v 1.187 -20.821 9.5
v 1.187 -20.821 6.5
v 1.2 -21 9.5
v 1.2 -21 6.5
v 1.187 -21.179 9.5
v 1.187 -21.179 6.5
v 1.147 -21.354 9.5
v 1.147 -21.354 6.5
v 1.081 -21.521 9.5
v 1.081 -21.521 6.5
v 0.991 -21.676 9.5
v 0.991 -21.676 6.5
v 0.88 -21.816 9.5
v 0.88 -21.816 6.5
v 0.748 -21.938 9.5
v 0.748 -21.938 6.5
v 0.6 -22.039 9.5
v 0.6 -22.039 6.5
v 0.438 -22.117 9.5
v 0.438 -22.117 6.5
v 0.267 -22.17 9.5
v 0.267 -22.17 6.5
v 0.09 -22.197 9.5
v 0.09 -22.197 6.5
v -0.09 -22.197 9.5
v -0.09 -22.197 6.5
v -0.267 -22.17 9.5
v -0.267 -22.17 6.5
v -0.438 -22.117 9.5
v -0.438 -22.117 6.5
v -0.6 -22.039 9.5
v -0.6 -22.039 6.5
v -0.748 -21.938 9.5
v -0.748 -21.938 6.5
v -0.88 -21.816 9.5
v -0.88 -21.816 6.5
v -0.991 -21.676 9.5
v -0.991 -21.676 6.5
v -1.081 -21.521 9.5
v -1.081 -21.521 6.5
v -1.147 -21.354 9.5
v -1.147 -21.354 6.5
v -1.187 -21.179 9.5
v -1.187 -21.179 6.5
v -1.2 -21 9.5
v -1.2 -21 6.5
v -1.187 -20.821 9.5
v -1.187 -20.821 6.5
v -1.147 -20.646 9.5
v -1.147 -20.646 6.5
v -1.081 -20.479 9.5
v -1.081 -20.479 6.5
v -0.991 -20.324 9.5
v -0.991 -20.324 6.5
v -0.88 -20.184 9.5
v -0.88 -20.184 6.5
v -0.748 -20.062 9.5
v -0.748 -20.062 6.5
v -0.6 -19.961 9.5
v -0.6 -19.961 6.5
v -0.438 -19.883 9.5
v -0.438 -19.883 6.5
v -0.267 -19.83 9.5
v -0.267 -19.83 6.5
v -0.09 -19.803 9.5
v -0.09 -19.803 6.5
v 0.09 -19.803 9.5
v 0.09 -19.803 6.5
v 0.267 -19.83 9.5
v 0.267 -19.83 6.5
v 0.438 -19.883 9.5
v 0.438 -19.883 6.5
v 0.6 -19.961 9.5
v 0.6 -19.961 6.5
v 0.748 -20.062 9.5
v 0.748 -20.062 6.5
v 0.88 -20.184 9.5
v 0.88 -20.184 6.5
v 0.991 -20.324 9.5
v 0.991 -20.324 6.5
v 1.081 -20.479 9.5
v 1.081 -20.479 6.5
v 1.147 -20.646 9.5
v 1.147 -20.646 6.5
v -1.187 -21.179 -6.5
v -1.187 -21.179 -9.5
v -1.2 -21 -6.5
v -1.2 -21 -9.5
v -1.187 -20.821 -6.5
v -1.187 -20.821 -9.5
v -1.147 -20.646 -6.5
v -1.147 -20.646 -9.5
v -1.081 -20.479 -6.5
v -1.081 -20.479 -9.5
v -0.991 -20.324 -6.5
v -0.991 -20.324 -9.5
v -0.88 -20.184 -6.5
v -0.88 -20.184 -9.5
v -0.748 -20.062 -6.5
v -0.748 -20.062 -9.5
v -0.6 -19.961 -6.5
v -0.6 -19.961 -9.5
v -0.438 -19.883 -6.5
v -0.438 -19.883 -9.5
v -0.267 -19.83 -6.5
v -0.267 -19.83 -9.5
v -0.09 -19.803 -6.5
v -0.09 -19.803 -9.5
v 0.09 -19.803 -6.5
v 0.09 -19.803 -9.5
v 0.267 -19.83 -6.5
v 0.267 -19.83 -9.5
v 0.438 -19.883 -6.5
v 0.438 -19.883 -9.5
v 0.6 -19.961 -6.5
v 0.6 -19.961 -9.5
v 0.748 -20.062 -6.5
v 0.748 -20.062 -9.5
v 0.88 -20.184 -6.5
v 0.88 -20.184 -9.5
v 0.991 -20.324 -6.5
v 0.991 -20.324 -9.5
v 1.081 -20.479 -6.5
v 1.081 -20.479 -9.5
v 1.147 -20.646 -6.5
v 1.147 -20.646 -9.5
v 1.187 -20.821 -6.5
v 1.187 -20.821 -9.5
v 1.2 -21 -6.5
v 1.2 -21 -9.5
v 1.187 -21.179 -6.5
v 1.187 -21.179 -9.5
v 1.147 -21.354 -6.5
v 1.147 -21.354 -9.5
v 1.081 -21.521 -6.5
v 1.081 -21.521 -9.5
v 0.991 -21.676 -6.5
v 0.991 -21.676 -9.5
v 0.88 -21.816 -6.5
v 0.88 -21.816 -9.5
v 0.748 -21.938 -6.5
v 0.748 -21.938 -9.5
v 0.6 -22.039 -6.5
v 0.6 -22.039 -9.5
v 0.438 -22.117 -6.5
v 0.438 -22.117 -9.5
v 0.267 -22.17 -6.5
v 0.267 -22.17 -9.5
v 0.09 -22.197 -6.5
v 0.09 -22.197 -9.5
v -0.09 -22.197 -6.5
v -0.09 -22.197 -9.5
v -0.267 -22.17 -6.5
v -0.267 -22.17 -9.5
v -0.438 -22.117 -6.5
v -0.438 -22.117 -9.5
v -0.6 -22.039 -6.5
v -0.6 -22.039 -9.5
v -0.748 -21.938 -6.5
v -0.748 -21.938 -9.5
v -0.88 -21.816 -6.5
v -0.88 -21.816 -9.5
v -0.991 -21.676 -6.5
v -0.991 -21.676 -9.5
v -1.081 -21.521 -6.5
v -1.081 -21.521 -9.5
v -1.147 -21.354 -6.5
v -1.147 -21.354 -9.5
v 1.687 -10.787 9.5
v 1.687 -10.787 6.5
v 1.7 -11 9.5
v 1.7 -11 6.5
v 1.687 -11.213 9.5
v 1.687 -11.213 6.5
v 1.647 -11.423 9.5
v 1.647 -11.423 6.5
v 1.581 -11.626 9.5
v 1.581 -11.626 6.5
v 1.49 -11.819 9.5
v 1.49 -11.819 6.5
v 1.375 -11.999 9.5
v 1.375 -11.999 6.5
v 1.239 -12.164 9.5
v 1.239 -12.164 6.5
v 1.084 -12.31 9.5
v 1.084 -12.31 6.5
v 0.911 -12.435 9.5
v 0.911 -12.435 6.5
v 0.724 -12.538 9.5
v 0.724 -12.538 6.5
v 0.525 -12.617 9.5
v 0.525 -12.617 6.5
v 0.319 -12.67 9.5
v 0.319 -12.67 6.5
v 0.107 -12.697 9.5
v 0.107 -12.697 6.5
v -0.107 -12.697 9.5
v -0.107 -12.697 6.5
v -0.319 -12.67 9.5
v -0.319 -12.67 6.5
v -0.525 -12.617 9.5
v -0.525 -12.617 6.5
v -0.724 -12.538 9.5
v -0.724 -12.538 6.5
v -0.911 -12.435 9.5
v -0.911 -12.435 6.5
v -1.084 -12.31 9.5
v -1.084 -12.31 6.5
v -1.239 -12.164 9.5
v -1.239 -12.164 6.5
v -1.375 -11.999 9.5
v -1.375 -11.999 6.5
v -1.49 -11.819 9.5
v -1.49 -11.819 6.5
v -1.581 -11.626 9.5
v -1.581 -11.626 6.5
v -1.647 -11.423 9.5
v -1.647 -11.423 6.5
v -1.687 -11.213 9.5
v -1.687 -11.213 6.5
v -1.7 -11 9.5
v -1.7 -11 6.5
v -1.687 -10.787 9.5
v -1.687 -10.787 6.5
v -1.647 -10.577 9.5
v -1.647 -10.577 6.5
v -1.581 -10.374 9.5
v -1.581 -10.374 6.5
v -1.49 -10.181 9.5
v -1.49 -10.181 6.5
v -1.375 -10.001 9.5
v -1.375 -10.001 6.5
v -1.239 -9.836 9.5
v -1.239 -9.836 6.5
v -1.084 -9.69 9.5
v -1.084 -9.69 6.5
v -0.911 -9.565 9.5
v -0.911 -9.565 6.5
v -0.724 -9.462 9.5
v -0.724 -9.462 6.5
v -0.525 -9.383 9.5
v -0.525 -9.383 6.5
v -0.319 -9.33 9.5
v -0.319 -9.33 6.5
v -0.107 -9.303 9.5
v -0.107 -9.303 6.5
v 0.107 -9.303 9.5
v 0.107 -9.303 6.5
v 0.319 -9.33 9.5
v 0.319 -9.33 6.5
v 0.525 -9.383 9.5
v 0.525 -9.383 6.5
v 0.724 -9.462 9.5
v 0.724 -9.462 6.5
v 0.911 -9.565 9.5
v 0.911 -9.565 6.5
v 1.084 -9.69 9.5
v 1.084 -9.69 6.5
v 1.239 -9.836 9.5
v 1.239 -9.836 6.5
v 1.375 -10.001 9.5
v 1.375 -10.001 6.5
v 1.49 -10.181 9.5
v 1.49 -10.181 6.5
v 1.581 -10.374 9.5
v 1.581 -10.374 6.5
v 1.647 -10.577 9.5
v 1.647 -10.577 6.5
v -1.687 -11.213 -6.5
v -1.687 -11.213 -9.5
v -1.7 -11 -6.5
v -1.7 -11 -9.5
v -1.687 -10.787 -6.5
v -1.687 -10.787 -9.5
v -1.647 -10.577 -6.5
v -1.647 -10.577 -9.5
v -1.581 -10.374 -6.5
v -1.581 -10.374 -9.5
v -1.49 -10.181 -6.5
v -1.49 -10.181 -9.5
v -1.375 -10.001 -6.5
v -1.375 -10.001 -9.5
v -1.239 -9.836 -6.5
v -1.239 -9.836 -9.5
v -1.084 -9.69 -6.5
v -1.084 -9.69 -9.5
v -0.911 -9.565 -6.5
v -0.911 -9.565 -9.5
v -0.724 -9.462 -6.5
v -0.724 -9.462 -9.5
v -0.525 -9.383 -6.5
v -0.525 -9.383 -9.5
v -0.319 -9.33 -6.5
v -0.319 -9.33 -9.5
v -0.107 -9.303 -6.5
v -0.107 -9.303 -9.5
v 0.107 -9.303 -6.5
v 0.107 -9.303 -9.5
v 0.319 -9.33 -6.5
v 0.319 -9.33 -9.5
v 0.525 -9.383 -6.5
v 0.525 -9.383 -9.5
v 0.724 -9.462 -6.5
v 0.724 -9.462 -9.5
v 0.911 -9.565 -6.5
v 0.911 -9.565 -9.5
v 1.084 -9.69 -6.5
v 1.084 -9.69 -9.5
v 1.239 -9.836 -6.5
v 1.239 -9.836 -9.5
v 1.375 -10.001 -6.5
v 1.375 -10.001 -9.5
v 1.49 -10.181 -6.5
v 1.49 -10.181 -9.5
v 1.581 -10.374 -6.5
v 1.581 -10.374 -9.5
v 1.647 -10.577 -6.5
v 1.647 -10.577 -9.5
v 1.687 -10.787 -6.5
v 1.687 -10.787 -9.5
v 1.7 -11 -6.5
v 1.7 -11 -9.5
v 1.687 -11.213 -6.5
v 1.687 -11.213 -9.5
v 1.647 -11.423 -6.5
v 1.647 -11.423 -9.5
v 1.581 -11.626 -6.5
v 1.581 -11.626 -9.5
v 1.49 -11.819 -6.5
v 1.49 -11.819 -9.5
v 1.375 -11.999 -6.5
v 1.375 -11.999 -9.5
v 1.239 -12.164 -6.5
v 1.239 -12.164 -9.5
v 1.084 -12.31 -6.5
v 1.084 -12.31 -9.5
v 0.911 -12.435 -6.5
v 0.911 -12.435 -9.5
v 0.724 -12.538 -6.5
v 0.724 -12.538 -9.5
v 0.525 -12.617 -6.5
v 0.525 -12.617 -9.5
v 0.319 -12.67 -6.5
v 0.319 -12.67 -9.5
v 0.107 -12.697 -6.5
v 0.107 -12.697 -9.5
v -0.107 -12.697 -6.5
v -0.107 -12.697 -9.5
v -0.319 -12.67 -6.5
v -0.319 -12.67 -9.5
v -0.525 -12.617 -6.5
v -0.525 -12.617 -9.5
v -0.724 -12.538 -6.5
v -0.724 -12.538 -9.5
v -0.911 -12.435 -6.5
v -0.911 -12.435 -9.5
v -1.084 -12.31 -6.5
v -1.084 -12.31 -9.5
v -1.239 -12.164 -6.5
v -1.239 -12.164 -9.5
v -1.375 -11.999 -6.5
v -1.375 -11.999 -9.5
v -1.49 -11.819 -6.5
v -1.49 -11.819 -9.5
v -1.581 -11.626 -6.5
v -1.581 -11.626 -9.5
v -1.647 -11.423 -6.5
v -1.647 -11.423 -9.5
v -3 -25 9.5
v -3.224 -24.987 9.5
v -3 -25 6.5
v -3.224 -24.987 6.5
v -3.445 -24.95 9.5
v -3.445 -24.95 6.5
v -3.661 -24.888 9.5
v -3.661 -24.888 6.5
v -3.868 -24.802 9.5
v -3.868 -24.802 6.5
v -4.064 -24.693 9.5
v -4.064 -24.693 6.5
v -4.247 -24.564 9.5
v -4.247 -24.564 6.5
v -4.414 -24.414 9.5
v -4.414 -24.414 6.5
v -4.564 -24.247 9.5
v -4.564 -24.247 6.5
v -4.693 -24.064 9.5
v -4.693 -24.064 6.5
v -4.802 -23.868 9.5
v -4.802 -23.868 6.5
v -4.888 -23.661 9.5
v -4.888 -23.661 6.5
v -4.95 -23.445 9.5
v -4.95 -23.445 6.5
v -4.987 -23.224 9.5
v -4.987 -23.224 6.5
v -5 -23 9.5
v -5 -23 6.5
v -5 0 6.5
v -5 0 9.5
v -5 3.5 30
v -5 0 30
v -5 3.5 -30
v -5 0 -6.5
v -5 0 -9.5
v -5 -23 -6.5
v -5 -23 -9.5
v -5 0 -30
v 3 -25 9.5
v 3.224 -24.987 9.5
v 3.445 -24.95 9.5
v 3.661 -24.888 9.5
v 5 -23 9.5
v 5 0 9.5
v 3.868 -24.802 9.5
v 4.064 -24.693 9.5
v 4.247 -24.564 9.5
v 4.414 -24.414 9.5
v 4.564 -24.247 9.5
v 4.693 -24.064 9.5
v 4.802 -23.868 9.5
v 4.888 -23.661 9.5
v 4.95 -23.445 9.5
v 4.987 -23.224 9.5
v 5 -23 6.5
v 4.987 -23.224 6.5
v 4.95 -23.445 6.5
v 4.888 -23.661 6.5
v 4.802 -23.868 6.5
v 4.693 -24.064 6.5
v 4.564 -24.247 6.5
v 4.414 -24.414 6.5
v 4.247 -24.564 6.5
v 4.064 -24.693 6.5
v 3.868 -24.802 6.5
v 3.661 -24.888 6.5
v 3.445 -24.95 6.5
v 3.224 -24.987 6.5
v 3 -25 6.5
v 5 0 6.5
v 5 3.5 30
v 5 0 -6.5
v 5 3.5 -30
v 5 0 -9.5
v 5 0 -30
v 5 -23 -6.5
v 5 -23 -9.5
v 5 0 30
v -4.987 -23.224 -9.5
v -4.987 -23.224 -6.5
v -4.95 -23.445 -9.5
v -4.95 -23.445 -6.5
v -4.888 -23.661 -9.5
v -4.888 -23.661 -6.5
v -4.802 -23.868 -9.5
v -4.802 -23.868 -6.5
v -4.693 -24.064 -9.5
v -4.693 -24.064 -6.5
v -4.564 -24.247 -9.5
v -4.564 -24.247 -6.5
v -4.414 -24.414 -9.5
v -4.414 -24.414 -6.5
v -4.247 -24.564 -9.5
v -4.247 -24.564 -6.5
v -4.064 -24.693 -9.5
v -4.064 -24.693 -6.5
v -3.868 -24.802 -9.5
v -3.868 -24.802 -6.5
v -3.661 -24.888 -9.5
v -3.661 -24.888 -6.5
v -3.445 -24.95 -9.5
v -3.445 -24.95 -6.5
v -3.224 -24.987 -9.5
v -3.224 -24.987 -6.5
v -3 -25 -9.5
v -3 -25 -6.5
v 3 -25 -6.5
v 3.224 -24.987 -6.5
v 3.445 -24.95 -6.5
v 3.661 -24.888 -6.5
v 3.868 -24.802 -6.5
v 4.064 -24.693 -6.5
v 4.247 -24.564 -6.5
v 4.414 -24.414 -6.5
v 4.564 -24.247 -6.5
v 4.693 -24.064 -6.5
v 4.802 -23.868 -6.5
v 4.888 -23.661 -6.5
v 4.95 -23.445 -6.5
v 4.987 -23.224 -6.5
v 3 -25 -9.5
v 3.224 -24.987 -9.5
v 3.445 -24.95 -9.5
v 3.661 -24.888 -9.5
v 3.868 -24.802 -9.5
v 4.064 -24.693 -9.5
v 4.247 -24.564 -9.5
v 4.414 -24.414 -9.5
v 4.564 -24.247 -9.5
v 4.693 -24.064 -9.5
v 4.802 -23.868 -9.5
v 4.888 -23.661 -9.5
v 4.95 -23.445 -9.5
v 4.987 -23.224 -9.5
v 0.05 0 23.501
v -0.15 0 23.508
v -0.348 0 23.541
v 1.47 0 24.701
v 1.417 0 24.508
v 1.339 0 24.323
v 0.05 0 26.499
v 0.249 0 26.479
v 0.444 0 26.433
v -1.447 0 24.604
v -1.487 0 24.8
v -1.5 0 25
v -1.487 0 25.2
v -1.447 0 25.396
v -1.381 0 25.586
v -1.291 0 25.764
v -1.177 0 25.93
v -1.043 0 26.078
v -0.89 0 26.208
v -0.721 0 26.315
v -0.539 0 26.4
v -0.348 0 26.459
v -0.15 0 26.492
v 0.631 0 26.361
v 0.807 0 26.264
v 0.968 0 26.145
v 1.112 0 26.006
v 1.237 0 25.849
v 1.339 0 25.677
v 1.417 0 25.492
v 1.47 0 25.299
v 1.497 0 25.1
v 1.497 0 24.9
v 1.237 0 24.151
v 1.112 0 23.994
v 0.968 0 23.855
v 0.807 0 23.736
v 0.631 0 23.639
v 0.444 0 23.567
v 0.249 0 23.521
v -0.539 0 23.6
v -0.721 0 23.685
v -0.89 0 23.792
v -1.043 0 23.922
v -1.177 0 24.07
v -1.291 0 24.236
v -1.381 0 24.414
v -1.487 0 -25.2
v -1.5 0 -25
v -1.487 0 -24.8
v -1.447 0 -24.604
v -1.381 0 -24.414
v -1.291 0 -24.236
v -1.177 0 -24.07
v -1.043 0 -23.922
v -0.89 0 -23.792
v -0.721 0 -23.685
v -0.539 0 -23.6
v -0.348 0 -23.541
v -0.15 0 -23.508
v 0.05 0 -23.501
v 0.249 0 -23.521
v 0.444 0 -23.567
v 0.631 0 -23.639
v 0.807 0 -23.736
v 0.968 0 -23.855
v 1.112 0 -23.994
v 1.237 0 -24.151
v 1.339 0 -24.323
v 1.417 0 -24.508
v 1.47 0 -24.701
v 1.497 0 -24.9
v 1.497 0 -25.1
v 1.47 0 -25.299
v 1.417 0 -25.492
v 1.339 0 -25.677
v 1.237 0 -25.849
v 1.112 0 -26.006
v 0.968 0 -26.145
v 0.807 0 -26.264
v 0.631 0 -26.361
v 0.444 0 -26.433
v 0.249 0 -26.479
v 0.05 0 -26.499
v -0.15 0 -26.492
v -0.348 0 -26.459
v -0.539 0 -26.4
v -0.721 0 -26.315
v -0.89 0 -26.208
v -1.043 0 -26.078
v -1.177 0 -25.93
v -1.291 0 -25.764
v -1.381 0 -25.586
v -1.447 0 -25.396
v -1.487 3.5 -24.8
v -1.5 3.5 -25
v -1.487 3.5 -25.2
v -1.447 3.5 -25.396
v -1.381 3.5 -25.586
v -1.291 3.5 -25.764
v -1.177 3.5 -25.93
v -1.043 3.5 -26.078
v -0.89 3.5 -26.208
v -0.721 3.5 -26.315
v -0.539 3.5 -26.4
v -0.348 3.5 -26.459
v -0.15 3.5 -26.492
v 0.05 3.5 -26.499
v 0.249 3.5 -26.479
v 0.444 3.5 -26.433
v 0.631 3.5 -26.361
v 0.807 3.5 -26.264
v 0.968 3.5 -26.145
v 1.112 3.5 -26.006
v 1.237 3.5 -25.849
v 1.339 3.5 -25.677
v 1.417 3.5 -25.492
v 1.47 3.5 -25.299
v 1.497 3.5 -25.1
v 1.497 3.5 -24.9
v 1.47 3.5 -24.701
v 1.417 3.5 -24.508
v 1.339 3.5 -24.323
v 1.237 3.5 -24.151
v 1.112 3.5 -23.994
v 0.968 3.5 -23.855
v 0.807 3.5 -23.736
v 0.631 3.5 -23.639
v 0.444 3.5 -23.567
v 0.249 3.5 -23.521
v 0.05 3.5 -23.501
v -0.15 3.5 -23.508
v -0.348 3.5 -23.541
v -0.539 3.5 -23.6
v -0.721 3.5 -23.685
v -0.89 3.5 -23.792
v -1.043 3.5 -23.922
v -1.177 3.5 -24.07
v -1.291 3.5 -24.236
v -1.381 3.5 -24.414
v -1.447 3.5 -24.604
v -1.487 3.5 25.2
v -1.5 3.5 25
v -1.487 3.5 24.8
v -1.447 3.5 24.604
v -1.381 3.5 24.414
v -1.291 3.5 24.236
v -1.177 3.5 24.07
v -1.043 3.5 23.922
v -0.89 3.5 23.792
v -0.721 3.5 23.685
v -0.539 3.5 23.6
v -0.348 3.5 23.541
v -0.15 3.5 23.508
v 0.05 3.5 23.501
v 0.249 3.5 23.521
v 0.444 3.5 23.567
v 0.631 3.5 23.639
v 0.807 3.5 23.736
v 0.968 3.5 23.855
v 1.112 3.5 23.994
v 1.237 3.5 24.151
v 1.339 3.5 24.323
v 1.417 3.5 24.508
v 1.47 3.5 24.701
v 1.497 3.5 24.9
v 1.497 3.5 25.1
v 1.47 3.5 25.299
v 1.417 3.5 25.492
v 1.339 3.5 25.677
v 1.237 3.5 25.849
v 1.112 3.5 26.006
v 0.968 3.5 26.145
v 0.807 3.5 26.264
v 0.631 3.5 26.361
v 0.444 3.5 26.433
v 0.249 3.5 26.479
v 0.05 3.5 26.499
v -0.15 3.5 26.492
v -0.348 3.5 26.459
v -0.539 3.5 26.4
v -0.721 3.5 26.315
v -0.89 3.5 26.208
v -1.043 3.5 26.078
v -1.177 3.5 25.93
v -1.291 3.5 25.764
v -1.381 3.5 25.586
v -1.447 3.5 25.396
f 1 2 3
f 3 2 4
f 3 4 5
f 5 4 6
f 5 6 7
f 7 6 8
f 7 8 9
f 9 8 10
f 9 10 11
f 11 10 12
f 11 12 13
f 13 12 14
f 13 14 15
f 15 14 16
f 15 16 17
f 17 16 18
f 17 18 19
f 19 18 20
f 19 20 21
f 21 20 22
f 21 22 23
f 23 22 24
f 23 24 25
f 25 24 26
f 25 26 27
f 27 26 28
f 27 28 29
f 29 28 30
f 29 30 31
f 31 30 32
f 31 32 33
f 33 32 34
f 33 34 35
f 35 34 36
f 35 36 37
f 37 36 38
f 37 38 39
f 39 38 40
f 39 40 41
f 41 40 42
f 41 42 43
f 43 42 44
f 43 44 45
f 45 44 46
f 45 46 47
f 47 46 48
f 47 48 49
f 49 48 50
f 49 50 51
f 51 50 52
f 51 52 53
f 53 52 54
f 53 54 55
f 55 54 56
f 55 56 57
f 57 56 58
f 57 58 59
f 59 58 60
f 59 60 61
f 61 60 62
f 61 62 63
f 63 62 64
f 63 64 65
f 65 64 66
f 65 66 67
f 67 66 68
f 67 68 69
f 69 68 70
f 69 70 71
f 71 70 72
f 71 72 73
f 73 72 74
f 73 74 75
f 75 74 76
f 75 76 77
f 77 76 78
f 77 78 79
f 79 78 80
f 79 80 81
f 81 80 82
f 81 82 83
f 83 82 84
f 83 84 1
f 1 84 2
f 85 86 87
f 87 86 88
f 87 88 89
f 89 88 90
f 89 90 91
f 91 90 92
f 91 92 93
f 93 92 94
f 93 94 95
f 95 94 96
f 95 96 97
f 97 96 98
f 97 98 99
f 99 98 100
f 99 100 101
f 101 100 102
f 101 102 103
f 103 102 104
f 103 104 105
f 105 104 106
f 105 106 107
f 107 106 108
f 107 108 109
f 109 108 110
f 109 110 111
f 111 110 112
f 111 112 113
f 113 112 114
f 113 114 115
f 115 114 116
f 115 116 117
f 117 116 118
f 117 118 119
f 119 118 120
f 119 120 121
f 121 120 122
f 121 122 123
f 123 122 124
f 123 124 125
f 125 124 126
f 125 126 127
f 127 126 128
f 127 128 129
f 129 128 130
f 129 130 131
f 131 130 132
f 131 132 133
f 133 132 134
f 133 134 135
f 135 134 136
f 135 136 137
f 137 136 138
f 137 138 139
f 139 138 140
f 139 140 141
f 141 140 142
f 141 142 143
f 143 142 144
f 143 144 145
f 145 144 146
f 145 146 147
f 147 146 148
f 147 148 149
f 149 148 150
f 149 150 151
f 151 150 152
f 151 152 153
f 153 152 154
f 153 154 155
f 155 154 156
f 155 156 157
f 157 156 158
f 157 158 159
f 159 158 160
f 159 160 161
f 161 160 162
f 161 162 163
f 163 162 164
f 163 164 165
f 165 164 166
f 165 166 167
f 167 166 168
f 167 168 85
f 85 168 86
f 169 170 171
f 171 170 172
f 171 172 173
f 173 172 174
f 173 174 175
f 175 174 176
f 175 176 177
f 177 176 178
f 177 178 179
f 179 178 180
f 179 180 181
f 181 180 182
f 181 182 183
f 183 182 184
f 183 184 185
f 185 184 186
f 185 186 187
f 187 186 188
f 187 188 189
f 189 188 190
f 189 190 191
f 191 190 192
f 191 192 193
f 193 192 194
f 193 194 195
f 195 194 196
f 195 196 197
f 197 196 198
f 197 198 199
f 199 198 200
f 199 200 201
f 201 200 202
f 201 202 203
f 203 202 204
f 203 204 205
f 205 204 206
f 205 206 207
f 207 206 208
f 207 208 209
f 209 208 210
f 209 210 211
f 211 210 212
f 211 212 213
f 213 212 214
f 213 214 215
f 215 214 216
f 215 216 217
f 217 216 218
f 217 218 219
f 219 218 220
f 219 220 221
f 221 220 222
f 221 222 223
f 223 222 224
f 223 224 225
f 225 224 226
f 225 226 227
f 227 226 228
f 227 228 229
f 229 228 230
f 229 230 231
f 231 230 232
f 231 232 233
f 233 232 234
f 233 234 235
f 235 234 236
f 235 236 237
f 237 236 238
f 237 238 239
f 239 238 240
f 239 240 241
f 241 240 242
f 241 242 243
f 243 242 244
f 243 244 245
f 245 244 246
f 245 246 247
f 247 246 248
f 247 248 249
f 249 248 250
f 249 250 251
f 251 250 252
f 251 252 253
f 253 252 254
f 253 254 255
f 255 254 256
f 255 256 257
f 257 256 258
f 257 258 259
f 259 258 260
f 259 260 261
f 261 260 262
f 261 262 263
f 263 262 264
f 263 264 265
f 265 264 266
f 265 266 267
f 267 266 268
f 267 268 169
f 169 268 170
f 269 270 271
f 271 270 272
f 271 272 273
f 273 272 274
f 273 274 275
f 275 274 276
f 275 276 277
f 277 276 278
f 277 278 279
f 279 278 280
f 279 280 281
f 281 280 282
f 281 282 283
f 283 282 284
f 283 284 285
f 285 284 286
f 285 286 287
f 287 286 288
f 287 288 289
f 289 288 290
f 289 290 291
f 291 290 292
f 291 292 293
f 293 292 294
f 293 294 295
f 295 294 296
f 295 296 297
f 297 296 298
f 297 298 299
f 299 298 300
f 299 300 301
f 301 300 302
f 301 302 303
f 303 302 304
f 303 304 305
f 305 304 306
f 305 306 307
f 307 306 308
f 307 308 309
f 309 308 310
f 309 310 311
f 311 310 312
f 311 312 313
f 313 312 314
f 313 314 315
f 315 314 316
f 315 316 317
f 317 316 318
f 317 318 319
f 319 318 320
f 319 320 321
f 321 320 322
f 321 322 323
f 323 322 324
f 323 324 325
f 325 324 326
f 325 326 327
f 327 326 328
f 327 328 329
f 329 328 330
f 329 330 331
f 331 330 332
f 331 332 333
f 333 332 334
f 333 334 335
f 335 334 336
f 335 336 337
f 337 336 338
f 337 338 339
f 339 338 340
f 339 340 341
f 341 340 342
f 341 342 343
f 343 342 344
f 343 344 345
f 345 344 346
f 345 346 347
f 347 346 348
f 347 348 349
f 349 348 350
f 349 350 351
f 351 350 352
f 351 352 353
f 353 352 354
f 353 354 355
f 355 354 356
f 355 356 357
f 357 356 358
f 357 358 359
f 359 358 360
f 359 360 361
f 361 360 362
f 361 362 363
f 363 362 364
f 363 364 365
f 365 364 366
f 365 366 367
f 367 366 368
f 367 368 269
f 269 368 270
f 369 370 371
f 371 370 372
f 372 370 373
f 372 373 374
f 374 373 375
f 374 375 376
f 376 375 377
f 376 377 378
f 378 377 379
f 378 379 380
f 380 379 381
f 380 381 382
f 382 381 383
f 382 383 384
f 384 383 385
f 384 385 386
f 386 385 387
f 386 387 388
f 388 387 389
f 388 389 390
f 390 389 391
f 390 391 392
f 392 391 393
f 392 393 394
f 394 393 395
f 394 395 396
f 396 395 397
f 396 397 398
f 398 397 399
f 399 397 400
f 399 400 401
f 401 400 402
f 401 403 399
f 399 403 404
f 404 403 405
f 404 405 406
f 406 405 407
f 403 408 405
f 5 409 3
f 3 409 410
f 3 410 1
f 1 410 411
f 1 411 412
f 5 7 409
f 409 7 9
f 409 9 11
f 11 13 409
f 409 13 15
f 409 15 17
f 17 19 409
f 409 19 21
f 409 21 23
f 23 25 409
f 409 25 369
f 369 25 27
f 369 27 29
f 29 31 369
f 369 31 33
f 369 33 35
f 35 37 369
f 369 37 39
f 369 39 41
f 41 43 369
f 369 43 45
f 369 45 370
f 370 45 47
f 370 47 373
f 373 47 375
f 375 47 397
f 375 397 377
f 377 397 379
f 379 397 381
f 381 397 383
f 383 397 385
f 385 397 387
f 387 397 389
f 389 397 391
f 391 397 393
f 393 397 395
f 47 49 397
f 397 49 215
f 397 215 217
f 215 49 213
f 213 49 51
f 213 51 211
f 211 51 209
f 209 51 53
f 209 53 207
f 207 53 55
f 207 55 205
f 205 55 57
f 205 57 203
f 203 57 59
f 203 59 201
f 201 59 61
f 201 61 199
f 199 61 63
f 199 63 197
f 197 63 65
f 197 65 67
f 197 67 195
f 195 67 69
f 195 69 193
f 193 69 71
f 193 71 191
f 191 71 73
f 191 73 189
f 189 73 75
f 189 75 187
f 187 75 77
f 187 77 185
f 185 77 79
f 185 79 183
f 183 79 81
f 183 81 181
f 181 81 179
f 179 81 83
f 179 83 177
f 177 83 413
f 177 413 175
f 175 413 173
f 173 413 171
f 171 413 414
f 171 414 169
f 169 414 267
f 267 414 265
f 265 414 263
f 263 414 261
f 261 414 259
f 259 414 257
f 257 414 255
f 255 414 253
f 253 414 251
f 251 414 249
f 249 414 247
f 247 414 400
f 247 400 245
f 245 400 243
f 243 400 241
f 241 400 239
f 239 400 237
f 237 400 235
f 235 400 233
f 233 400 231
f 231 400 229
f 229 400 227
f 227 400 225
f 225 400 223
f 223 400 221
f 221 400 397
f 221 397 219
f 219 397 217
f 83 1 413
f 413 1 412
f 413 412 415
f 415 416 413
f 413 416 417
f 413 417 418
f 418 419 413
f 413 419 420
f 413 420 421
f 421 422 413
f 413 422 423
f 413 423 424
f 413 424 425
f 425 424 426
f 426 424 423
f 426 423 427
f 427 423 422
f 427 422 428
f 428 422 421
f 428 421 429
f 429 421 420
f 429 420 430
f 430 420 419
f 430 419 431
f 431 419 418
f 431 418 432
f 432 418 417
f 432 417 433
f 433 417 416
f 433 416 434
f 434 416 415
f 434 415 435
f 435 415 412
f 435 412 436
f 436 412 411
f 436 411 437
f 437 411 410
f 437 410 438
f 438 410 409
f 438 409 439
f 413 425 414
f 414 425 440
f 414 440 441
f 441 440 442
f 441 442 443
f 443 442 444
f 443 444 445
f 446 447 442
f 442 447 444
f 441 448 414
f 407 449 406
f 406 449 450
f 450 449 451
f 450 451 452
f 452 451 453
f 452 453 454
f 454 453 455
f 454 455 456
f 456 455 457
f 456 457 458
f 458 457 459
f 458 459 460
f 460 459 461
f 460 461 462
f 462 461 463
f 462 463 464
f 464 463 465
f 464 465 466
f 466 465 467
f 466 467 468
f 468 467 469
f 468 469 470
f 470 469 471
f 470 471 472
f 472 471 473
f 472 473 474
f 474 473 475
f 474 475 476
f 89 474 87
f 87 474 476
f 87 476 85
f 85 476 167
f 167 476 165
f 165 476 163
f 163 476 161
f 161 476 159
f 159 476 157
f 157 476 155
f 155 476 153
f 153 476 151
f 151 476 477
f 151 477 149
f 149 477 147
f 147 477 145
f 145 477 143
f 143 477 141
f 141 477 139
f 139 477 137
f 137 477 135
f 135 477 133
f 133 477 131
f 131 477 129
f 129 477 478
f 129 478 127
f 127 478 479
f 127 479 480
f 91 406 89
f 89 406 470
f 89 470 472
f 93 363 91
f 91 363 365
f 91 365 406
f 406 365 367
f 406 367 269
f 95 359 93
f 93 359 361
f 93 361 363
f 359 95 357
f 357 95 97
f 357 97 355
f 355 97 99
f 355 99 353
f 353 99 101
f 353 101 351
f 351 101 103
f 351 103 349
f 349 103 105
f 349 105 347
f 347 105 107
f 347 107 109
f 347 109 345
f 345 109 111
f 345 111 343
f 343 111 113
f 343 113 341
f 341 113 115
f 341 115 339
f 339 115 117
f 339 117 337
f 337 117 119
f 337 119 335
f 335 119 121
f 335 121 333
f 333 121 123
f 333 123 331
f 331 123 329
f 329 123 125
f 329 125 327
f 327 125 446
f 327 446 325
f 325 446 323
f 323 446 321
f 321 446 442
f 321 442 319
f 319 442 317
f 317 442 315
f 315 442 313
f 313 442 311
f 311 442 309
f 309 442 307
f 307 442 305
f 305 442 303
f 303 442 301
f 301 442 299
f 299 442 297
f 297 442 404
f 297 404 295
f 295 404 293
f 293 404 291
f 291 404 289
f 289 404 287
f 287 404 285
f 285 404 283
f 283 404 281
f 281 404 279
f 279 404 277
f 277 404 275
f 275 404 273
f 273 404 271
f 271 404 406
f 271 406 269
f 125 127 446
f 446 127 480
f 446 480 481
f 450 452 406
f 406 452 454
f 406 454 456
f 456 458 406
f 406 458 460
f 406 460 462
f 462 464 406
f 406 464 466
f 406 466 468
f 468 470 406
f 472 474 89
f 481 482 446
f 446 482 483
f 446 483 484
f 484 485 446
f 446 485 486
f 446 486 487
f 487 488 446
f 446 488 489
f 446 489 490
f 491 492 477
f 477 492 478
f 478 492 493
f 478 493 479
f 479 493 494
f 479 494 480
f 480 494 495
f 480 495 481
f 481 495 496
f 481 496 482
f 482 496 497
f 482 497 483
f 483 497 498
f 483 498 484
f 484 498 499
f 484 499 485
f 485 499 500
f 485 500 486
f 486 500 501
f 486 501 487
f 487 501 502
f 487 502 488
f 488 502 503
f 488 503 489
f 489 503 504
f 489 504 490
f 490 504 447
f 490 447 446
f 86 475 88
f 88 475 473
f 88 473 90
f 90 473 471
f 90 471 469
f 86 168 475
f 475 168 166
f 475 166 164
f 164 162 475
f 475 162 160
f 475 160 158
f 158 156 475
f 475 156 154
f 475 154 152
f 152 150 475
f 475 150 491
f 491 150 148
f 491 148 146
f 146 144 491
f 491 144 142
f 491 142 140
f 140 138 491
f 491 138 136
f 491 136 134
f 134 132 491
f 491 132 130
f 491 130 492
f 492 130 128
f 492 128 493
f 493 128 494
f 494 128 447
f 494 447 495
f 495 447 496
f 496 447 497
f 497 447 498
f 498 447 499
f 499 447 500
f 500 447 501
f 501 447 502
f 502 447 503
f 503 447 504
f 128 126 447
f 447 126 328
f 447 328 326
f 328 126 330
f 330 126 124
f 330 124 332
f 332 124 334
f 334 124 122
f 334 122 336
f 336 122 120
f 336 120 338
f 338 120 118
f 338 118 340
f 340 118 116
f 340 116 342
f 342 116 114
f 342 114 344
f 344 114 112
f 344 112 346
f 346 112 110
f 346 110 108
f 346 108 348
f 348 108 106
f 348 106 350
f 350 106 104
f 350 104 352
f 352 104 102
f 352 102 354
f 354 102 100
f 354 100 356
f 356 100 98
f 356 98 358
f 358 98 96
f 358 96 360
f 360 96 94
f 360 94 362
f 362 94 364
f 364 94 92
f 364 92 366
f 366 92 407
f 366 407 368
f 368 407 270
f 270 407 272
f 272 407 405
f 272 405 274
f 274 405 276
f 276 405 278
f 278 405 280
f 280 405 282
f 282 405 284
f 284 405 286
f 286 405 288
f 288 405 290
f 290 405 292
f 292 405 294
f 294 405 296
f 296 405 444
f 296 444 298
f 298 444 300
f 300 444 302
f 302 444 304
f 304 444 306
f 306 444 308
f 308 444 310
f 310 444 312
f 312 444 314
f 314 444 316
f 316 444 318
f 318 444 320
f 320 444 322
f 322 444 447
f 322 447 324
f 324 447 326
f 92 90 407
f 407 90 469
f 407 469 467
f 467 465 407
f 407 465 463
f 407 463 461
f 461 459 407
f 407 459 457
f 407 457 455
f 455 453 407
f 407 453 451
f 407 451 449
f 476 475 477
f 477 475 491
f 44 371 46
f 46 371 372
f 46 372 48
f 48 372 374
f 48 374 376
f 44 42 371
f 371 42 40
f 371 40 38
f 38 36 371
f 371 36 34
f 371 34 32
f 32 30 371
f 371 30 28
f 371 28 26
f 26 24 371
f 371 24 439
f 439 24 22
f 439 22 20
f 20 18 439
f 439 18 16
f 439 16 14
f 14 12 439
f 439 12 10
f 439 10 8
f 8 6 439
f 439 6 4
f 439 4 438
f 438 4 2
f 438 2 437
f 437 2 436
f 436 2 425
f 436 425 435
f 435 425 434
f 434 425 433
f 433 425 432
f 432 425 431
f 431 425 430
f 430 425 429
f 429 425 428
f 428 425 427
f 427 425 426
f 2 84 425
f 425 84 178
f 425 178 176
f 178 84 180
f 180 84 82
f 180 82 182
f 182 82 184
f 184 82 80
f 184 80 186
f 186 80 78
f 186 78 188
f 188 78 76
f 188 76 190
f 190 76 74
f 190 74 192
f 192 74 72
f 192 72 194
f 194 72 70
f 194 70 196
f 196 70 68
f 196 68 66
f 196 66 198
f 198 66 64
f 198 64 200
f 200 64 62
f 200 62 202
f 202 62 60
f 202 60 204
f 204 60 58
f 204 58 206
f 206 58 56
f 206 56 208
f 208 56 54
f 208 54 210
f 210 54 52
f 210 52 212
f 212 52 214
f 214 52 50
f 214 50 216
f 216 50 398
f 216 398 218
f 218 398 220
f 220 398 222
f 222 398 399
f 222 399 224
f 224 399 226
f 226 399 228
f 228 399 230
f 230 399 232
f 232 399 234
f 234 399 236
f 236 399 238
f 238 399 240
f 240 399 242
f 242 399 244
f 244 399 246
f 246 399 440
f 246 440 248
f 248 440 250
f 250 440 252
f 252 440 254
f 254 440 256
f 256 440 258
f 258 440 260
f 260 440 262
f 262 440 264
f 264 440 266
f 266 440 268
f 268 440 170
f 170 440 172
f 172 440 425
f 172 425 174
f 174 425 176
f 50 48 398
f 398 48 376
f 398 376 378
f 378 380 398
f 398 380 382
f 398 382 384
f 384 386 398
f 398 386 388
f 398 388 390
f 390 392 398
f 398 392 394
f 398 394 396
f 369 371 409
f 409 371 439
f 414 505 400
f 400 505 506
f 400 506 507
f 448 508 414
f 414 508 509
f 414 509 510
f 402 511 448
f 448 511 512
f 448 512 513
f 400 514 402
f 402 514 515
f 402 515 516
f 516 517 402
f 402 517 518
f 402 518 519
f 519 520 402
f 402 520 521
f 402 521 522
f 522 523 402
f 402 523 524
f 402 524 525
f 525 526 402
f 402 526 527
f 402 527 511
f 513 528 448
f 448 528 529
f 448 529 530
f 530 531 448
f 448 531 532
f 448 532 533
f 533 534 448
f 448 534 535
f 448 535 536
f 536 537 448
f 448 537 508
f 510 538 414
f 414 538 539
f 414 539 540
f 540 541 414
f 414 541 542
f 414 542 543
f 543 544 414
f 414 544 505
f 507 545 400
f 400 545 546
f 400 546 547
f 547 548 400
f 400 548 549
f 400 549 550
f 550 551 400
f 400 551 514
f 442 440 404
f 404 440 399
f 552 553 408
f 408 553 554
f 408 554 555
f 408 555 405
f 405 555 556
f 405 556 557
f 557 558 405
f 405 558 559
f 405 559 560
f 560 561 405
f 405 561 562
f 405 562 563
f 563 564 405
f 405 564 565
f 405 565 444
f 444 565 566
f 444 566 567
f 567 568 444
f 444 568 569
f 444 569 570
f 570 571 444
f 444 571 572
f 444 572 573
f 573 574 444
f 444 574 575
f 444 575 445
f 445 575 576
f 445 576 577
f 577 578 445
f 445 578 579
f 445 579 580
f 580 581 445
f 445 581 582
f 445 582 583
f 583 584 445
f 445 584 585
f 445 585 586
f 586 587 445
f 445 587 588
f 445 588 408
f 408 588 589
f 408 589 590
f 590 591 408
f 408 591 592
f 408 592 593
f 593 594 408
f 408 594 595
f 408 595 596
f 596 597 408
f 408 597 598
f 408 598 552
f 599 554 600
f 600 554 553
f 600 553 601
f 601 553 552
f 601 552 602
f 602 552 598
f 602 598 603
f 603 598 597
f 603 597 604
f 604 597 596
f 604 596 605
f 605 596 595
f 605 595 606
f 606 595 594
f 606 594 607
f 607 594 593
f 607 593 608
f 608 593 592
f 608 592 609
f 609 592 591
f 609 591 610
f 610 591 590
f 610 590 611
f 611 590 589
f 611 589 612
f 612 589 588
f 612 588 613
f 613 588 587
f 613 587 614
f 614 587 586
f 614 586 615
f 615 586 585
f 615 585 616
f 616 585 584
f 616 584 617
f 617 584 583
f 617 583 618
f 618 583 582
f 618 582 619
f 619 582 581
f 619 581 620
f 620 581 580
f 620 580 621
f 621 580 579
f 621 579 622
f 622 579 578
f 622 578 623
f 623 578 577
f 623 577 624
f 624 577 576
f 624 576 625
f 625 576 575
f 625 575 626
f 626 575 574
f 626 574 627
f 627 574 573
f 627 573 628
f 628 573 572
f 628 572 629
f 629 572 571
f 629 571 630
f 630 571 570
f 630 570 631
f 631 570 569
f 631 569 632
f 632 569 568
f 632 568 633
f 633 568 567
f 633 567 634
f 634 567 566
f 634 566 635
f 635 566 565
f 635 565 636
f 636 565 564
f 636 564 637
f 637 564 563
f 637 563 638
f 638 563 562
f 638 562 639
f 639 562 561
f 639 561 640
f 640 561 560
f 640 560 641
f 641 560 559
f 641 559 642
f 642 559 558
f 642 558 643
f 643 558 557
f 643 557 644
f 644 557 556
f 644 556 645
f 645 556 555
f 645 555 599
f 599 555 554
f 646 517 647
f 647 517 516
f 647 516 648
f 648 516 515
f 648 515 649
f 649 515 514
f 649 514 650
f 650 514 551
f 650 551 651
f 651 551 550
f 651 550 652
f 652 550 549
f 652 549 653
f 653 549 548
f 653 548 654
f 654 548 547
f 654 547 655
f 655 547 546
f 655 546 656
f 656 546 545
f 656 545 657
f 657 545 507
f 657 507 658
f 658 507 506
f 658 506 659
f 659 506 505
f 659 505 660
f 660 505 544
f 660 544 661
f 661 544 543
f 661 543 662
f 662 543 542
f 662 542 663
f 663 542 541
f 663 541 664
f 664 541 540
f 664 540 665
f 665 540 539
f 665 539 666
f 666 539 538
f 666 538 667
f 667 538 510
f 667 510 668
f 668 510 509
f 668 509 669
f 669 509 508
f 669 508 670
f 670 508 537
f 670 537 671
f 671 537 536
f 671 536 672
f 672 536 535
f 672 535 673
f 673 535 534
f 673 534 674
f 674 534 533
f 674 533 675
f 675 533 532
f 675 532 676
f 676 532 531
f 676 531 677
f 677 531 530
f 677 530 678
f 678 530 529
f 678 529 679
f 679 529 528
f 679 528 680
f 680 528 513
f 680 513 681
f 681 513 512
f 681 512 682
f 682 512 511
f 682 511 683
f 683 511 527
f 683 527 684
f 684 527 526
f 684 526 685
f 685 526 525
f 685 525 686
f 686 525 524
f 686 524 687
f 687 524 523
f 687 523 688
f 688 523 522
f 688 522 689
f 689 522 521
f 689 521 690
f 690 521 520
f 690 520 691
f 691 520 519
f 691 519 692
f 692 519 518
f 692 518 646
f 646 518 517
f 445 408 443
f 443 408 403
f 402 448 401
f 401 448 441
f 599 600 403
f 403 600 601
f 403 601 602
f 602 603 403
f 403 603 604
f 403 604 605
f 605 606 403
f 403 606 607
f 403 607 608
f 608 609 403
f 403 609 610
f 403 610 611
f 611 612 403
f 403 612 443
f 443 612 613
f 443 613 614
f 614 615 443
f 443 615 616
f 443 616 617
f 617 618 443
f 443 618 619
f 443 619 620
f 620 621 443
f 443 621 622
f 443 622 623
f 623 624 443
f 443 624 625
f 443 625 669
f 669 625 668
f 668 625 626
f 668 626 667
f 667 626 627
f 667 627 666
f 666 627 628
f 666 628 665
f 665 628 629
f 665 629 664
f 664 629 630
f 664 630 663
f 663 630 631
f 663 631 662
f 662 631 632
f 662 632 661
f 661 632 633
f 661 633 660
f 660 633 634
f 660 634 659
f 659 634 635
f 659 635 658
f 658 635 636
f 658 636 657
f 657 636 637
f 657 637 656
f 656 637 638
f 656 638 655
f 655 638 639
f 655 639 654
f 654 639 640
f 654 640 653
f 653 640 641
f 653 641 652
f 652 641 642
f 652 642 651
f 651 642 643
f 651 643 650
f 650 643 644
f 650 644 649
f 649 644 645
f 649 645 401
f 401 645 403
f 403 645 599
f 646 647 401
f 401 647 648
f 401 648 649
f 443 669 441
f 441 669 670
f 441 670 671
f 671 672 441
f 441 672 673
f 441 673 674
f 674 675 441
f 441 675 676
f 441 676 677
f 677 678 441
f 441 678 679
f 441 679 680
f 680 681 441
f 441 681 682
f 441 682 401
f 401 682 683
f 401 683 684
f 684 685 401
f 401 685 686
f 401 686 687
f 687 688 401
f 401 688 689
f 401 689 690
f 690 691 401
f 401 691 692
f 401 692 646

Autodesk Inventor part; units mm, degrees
ref_plane "YZ Plane" through (0, 0, 0) normal (1, 0, 0) x (0, 1, 0)
ref_plane "XZ Plane" through (0, 0, 0) normal (0, 1, 0) x (-1, 0, 0)
ref_plane "XY Plane" through (0, 0, 0) normal (0, 0, 1) x (1, 0, 0)
sketch "Szkic1" plane through (0, 0, 0) normal (0, 1, 0) x (-1, 0, 0)
  line L0 (-5, 30) -> (5, 30)
  line L1 (5, 30) -> (5, -30)
  line L2 (5, -30) -> (-5, -30)
  line L3 (-5, -30) -> (-5, 30)
  line L4 (-5, 30) -> (5, -30) construction
  line L5 (5, 30) -> (-5, -30) construction
  circle A0 centre (0, 25) radius 1.5
  circle A1 centre (0, -25) radius 1.5
  point P0 (0, 0)
  dimension "d0" = 10
  dimension "d1" = 60
  dimension "d2" = 50
  dimension "d3" = 5
  dimension "d4" = 5
  dimension "d5" = 3
  dimension "d6" = 3
extrude "Wyciągnięcie proste1" add sketch "Szkic1" along normal blind 3.5
sketch "Szkic2" plane through (0, 0, 0) normal (0, -1, 0) x (1, 0, 0)
  line L0 (5, 30) -> (5, -30) projected
  line L1 (-5, -9.5) -> (5, -9.5)
  line L2 (5, -9.5) -> (5, -6.5)
  line L3 (5, -6.5) -> (-5, -6.5)
  line L4 (-5, -6.5) -> (-5, -9.5)
  line L5 (-5, 6.5) -> (5, 6.5)
  line L6 (5, 6.5) -> (5, 9.5)
  line L7 (5, 9.5) -> (-5, 9.5)
  line L8 (-5, 9.5) -> (-5, 6.5)
  line L9 (-5, 30) -> (-5, -30) projected
  point P0 (0, 0)
  dimension "d9" = 3
  dimension "d10" = 3
  dimension "d11" = 13
  dimension "d12" = 6.5
extrude "Wyciągnięcie proste2" add sketch "Szkic2" along normal blind 25 contours L0 L5 L8 L7 | L0 L1 L4 L3
fillet "Zaokrąglenie1" radius 2 4 edges at (5, -25, -8) (-5, -25, -8) (5, -25, 8) (-5, -25, 8)
sketch "Szkic3" plane through (-5, 0, 9.5) normal (0, 0, 1) x (1, 0, 0)
  line L0 (0, 0) -> (0, -23) projected
  line L1 (8, -25) -> (2, -25) projected
  point P0 (5, 0)
  point P1 (5, -21)
  point P2 (5, -11)
  dimension "d16" = 10
  dimension "d17" = 5
  dimension "d18" = 4
hole "Otwór1" at (0, -11, 9.5) direction (0, 0, -1) diameter 3.4 end through all clearance for "Śruba ze łbem płaskim obrobiona" size "M3" standard "ANSI Profil metryczny M"
hole "Otwór2" at (0, -21, 9.5) direction (0, 0, -1) diameter 2.4 end through all clearance for "Śruba ze łbem płaskim obrobiona" size "M2" standard "ANSI Profil metryczny M"
equation "\"d10\" = d9"
equation "\"d12\" = 0.5 * d11"
